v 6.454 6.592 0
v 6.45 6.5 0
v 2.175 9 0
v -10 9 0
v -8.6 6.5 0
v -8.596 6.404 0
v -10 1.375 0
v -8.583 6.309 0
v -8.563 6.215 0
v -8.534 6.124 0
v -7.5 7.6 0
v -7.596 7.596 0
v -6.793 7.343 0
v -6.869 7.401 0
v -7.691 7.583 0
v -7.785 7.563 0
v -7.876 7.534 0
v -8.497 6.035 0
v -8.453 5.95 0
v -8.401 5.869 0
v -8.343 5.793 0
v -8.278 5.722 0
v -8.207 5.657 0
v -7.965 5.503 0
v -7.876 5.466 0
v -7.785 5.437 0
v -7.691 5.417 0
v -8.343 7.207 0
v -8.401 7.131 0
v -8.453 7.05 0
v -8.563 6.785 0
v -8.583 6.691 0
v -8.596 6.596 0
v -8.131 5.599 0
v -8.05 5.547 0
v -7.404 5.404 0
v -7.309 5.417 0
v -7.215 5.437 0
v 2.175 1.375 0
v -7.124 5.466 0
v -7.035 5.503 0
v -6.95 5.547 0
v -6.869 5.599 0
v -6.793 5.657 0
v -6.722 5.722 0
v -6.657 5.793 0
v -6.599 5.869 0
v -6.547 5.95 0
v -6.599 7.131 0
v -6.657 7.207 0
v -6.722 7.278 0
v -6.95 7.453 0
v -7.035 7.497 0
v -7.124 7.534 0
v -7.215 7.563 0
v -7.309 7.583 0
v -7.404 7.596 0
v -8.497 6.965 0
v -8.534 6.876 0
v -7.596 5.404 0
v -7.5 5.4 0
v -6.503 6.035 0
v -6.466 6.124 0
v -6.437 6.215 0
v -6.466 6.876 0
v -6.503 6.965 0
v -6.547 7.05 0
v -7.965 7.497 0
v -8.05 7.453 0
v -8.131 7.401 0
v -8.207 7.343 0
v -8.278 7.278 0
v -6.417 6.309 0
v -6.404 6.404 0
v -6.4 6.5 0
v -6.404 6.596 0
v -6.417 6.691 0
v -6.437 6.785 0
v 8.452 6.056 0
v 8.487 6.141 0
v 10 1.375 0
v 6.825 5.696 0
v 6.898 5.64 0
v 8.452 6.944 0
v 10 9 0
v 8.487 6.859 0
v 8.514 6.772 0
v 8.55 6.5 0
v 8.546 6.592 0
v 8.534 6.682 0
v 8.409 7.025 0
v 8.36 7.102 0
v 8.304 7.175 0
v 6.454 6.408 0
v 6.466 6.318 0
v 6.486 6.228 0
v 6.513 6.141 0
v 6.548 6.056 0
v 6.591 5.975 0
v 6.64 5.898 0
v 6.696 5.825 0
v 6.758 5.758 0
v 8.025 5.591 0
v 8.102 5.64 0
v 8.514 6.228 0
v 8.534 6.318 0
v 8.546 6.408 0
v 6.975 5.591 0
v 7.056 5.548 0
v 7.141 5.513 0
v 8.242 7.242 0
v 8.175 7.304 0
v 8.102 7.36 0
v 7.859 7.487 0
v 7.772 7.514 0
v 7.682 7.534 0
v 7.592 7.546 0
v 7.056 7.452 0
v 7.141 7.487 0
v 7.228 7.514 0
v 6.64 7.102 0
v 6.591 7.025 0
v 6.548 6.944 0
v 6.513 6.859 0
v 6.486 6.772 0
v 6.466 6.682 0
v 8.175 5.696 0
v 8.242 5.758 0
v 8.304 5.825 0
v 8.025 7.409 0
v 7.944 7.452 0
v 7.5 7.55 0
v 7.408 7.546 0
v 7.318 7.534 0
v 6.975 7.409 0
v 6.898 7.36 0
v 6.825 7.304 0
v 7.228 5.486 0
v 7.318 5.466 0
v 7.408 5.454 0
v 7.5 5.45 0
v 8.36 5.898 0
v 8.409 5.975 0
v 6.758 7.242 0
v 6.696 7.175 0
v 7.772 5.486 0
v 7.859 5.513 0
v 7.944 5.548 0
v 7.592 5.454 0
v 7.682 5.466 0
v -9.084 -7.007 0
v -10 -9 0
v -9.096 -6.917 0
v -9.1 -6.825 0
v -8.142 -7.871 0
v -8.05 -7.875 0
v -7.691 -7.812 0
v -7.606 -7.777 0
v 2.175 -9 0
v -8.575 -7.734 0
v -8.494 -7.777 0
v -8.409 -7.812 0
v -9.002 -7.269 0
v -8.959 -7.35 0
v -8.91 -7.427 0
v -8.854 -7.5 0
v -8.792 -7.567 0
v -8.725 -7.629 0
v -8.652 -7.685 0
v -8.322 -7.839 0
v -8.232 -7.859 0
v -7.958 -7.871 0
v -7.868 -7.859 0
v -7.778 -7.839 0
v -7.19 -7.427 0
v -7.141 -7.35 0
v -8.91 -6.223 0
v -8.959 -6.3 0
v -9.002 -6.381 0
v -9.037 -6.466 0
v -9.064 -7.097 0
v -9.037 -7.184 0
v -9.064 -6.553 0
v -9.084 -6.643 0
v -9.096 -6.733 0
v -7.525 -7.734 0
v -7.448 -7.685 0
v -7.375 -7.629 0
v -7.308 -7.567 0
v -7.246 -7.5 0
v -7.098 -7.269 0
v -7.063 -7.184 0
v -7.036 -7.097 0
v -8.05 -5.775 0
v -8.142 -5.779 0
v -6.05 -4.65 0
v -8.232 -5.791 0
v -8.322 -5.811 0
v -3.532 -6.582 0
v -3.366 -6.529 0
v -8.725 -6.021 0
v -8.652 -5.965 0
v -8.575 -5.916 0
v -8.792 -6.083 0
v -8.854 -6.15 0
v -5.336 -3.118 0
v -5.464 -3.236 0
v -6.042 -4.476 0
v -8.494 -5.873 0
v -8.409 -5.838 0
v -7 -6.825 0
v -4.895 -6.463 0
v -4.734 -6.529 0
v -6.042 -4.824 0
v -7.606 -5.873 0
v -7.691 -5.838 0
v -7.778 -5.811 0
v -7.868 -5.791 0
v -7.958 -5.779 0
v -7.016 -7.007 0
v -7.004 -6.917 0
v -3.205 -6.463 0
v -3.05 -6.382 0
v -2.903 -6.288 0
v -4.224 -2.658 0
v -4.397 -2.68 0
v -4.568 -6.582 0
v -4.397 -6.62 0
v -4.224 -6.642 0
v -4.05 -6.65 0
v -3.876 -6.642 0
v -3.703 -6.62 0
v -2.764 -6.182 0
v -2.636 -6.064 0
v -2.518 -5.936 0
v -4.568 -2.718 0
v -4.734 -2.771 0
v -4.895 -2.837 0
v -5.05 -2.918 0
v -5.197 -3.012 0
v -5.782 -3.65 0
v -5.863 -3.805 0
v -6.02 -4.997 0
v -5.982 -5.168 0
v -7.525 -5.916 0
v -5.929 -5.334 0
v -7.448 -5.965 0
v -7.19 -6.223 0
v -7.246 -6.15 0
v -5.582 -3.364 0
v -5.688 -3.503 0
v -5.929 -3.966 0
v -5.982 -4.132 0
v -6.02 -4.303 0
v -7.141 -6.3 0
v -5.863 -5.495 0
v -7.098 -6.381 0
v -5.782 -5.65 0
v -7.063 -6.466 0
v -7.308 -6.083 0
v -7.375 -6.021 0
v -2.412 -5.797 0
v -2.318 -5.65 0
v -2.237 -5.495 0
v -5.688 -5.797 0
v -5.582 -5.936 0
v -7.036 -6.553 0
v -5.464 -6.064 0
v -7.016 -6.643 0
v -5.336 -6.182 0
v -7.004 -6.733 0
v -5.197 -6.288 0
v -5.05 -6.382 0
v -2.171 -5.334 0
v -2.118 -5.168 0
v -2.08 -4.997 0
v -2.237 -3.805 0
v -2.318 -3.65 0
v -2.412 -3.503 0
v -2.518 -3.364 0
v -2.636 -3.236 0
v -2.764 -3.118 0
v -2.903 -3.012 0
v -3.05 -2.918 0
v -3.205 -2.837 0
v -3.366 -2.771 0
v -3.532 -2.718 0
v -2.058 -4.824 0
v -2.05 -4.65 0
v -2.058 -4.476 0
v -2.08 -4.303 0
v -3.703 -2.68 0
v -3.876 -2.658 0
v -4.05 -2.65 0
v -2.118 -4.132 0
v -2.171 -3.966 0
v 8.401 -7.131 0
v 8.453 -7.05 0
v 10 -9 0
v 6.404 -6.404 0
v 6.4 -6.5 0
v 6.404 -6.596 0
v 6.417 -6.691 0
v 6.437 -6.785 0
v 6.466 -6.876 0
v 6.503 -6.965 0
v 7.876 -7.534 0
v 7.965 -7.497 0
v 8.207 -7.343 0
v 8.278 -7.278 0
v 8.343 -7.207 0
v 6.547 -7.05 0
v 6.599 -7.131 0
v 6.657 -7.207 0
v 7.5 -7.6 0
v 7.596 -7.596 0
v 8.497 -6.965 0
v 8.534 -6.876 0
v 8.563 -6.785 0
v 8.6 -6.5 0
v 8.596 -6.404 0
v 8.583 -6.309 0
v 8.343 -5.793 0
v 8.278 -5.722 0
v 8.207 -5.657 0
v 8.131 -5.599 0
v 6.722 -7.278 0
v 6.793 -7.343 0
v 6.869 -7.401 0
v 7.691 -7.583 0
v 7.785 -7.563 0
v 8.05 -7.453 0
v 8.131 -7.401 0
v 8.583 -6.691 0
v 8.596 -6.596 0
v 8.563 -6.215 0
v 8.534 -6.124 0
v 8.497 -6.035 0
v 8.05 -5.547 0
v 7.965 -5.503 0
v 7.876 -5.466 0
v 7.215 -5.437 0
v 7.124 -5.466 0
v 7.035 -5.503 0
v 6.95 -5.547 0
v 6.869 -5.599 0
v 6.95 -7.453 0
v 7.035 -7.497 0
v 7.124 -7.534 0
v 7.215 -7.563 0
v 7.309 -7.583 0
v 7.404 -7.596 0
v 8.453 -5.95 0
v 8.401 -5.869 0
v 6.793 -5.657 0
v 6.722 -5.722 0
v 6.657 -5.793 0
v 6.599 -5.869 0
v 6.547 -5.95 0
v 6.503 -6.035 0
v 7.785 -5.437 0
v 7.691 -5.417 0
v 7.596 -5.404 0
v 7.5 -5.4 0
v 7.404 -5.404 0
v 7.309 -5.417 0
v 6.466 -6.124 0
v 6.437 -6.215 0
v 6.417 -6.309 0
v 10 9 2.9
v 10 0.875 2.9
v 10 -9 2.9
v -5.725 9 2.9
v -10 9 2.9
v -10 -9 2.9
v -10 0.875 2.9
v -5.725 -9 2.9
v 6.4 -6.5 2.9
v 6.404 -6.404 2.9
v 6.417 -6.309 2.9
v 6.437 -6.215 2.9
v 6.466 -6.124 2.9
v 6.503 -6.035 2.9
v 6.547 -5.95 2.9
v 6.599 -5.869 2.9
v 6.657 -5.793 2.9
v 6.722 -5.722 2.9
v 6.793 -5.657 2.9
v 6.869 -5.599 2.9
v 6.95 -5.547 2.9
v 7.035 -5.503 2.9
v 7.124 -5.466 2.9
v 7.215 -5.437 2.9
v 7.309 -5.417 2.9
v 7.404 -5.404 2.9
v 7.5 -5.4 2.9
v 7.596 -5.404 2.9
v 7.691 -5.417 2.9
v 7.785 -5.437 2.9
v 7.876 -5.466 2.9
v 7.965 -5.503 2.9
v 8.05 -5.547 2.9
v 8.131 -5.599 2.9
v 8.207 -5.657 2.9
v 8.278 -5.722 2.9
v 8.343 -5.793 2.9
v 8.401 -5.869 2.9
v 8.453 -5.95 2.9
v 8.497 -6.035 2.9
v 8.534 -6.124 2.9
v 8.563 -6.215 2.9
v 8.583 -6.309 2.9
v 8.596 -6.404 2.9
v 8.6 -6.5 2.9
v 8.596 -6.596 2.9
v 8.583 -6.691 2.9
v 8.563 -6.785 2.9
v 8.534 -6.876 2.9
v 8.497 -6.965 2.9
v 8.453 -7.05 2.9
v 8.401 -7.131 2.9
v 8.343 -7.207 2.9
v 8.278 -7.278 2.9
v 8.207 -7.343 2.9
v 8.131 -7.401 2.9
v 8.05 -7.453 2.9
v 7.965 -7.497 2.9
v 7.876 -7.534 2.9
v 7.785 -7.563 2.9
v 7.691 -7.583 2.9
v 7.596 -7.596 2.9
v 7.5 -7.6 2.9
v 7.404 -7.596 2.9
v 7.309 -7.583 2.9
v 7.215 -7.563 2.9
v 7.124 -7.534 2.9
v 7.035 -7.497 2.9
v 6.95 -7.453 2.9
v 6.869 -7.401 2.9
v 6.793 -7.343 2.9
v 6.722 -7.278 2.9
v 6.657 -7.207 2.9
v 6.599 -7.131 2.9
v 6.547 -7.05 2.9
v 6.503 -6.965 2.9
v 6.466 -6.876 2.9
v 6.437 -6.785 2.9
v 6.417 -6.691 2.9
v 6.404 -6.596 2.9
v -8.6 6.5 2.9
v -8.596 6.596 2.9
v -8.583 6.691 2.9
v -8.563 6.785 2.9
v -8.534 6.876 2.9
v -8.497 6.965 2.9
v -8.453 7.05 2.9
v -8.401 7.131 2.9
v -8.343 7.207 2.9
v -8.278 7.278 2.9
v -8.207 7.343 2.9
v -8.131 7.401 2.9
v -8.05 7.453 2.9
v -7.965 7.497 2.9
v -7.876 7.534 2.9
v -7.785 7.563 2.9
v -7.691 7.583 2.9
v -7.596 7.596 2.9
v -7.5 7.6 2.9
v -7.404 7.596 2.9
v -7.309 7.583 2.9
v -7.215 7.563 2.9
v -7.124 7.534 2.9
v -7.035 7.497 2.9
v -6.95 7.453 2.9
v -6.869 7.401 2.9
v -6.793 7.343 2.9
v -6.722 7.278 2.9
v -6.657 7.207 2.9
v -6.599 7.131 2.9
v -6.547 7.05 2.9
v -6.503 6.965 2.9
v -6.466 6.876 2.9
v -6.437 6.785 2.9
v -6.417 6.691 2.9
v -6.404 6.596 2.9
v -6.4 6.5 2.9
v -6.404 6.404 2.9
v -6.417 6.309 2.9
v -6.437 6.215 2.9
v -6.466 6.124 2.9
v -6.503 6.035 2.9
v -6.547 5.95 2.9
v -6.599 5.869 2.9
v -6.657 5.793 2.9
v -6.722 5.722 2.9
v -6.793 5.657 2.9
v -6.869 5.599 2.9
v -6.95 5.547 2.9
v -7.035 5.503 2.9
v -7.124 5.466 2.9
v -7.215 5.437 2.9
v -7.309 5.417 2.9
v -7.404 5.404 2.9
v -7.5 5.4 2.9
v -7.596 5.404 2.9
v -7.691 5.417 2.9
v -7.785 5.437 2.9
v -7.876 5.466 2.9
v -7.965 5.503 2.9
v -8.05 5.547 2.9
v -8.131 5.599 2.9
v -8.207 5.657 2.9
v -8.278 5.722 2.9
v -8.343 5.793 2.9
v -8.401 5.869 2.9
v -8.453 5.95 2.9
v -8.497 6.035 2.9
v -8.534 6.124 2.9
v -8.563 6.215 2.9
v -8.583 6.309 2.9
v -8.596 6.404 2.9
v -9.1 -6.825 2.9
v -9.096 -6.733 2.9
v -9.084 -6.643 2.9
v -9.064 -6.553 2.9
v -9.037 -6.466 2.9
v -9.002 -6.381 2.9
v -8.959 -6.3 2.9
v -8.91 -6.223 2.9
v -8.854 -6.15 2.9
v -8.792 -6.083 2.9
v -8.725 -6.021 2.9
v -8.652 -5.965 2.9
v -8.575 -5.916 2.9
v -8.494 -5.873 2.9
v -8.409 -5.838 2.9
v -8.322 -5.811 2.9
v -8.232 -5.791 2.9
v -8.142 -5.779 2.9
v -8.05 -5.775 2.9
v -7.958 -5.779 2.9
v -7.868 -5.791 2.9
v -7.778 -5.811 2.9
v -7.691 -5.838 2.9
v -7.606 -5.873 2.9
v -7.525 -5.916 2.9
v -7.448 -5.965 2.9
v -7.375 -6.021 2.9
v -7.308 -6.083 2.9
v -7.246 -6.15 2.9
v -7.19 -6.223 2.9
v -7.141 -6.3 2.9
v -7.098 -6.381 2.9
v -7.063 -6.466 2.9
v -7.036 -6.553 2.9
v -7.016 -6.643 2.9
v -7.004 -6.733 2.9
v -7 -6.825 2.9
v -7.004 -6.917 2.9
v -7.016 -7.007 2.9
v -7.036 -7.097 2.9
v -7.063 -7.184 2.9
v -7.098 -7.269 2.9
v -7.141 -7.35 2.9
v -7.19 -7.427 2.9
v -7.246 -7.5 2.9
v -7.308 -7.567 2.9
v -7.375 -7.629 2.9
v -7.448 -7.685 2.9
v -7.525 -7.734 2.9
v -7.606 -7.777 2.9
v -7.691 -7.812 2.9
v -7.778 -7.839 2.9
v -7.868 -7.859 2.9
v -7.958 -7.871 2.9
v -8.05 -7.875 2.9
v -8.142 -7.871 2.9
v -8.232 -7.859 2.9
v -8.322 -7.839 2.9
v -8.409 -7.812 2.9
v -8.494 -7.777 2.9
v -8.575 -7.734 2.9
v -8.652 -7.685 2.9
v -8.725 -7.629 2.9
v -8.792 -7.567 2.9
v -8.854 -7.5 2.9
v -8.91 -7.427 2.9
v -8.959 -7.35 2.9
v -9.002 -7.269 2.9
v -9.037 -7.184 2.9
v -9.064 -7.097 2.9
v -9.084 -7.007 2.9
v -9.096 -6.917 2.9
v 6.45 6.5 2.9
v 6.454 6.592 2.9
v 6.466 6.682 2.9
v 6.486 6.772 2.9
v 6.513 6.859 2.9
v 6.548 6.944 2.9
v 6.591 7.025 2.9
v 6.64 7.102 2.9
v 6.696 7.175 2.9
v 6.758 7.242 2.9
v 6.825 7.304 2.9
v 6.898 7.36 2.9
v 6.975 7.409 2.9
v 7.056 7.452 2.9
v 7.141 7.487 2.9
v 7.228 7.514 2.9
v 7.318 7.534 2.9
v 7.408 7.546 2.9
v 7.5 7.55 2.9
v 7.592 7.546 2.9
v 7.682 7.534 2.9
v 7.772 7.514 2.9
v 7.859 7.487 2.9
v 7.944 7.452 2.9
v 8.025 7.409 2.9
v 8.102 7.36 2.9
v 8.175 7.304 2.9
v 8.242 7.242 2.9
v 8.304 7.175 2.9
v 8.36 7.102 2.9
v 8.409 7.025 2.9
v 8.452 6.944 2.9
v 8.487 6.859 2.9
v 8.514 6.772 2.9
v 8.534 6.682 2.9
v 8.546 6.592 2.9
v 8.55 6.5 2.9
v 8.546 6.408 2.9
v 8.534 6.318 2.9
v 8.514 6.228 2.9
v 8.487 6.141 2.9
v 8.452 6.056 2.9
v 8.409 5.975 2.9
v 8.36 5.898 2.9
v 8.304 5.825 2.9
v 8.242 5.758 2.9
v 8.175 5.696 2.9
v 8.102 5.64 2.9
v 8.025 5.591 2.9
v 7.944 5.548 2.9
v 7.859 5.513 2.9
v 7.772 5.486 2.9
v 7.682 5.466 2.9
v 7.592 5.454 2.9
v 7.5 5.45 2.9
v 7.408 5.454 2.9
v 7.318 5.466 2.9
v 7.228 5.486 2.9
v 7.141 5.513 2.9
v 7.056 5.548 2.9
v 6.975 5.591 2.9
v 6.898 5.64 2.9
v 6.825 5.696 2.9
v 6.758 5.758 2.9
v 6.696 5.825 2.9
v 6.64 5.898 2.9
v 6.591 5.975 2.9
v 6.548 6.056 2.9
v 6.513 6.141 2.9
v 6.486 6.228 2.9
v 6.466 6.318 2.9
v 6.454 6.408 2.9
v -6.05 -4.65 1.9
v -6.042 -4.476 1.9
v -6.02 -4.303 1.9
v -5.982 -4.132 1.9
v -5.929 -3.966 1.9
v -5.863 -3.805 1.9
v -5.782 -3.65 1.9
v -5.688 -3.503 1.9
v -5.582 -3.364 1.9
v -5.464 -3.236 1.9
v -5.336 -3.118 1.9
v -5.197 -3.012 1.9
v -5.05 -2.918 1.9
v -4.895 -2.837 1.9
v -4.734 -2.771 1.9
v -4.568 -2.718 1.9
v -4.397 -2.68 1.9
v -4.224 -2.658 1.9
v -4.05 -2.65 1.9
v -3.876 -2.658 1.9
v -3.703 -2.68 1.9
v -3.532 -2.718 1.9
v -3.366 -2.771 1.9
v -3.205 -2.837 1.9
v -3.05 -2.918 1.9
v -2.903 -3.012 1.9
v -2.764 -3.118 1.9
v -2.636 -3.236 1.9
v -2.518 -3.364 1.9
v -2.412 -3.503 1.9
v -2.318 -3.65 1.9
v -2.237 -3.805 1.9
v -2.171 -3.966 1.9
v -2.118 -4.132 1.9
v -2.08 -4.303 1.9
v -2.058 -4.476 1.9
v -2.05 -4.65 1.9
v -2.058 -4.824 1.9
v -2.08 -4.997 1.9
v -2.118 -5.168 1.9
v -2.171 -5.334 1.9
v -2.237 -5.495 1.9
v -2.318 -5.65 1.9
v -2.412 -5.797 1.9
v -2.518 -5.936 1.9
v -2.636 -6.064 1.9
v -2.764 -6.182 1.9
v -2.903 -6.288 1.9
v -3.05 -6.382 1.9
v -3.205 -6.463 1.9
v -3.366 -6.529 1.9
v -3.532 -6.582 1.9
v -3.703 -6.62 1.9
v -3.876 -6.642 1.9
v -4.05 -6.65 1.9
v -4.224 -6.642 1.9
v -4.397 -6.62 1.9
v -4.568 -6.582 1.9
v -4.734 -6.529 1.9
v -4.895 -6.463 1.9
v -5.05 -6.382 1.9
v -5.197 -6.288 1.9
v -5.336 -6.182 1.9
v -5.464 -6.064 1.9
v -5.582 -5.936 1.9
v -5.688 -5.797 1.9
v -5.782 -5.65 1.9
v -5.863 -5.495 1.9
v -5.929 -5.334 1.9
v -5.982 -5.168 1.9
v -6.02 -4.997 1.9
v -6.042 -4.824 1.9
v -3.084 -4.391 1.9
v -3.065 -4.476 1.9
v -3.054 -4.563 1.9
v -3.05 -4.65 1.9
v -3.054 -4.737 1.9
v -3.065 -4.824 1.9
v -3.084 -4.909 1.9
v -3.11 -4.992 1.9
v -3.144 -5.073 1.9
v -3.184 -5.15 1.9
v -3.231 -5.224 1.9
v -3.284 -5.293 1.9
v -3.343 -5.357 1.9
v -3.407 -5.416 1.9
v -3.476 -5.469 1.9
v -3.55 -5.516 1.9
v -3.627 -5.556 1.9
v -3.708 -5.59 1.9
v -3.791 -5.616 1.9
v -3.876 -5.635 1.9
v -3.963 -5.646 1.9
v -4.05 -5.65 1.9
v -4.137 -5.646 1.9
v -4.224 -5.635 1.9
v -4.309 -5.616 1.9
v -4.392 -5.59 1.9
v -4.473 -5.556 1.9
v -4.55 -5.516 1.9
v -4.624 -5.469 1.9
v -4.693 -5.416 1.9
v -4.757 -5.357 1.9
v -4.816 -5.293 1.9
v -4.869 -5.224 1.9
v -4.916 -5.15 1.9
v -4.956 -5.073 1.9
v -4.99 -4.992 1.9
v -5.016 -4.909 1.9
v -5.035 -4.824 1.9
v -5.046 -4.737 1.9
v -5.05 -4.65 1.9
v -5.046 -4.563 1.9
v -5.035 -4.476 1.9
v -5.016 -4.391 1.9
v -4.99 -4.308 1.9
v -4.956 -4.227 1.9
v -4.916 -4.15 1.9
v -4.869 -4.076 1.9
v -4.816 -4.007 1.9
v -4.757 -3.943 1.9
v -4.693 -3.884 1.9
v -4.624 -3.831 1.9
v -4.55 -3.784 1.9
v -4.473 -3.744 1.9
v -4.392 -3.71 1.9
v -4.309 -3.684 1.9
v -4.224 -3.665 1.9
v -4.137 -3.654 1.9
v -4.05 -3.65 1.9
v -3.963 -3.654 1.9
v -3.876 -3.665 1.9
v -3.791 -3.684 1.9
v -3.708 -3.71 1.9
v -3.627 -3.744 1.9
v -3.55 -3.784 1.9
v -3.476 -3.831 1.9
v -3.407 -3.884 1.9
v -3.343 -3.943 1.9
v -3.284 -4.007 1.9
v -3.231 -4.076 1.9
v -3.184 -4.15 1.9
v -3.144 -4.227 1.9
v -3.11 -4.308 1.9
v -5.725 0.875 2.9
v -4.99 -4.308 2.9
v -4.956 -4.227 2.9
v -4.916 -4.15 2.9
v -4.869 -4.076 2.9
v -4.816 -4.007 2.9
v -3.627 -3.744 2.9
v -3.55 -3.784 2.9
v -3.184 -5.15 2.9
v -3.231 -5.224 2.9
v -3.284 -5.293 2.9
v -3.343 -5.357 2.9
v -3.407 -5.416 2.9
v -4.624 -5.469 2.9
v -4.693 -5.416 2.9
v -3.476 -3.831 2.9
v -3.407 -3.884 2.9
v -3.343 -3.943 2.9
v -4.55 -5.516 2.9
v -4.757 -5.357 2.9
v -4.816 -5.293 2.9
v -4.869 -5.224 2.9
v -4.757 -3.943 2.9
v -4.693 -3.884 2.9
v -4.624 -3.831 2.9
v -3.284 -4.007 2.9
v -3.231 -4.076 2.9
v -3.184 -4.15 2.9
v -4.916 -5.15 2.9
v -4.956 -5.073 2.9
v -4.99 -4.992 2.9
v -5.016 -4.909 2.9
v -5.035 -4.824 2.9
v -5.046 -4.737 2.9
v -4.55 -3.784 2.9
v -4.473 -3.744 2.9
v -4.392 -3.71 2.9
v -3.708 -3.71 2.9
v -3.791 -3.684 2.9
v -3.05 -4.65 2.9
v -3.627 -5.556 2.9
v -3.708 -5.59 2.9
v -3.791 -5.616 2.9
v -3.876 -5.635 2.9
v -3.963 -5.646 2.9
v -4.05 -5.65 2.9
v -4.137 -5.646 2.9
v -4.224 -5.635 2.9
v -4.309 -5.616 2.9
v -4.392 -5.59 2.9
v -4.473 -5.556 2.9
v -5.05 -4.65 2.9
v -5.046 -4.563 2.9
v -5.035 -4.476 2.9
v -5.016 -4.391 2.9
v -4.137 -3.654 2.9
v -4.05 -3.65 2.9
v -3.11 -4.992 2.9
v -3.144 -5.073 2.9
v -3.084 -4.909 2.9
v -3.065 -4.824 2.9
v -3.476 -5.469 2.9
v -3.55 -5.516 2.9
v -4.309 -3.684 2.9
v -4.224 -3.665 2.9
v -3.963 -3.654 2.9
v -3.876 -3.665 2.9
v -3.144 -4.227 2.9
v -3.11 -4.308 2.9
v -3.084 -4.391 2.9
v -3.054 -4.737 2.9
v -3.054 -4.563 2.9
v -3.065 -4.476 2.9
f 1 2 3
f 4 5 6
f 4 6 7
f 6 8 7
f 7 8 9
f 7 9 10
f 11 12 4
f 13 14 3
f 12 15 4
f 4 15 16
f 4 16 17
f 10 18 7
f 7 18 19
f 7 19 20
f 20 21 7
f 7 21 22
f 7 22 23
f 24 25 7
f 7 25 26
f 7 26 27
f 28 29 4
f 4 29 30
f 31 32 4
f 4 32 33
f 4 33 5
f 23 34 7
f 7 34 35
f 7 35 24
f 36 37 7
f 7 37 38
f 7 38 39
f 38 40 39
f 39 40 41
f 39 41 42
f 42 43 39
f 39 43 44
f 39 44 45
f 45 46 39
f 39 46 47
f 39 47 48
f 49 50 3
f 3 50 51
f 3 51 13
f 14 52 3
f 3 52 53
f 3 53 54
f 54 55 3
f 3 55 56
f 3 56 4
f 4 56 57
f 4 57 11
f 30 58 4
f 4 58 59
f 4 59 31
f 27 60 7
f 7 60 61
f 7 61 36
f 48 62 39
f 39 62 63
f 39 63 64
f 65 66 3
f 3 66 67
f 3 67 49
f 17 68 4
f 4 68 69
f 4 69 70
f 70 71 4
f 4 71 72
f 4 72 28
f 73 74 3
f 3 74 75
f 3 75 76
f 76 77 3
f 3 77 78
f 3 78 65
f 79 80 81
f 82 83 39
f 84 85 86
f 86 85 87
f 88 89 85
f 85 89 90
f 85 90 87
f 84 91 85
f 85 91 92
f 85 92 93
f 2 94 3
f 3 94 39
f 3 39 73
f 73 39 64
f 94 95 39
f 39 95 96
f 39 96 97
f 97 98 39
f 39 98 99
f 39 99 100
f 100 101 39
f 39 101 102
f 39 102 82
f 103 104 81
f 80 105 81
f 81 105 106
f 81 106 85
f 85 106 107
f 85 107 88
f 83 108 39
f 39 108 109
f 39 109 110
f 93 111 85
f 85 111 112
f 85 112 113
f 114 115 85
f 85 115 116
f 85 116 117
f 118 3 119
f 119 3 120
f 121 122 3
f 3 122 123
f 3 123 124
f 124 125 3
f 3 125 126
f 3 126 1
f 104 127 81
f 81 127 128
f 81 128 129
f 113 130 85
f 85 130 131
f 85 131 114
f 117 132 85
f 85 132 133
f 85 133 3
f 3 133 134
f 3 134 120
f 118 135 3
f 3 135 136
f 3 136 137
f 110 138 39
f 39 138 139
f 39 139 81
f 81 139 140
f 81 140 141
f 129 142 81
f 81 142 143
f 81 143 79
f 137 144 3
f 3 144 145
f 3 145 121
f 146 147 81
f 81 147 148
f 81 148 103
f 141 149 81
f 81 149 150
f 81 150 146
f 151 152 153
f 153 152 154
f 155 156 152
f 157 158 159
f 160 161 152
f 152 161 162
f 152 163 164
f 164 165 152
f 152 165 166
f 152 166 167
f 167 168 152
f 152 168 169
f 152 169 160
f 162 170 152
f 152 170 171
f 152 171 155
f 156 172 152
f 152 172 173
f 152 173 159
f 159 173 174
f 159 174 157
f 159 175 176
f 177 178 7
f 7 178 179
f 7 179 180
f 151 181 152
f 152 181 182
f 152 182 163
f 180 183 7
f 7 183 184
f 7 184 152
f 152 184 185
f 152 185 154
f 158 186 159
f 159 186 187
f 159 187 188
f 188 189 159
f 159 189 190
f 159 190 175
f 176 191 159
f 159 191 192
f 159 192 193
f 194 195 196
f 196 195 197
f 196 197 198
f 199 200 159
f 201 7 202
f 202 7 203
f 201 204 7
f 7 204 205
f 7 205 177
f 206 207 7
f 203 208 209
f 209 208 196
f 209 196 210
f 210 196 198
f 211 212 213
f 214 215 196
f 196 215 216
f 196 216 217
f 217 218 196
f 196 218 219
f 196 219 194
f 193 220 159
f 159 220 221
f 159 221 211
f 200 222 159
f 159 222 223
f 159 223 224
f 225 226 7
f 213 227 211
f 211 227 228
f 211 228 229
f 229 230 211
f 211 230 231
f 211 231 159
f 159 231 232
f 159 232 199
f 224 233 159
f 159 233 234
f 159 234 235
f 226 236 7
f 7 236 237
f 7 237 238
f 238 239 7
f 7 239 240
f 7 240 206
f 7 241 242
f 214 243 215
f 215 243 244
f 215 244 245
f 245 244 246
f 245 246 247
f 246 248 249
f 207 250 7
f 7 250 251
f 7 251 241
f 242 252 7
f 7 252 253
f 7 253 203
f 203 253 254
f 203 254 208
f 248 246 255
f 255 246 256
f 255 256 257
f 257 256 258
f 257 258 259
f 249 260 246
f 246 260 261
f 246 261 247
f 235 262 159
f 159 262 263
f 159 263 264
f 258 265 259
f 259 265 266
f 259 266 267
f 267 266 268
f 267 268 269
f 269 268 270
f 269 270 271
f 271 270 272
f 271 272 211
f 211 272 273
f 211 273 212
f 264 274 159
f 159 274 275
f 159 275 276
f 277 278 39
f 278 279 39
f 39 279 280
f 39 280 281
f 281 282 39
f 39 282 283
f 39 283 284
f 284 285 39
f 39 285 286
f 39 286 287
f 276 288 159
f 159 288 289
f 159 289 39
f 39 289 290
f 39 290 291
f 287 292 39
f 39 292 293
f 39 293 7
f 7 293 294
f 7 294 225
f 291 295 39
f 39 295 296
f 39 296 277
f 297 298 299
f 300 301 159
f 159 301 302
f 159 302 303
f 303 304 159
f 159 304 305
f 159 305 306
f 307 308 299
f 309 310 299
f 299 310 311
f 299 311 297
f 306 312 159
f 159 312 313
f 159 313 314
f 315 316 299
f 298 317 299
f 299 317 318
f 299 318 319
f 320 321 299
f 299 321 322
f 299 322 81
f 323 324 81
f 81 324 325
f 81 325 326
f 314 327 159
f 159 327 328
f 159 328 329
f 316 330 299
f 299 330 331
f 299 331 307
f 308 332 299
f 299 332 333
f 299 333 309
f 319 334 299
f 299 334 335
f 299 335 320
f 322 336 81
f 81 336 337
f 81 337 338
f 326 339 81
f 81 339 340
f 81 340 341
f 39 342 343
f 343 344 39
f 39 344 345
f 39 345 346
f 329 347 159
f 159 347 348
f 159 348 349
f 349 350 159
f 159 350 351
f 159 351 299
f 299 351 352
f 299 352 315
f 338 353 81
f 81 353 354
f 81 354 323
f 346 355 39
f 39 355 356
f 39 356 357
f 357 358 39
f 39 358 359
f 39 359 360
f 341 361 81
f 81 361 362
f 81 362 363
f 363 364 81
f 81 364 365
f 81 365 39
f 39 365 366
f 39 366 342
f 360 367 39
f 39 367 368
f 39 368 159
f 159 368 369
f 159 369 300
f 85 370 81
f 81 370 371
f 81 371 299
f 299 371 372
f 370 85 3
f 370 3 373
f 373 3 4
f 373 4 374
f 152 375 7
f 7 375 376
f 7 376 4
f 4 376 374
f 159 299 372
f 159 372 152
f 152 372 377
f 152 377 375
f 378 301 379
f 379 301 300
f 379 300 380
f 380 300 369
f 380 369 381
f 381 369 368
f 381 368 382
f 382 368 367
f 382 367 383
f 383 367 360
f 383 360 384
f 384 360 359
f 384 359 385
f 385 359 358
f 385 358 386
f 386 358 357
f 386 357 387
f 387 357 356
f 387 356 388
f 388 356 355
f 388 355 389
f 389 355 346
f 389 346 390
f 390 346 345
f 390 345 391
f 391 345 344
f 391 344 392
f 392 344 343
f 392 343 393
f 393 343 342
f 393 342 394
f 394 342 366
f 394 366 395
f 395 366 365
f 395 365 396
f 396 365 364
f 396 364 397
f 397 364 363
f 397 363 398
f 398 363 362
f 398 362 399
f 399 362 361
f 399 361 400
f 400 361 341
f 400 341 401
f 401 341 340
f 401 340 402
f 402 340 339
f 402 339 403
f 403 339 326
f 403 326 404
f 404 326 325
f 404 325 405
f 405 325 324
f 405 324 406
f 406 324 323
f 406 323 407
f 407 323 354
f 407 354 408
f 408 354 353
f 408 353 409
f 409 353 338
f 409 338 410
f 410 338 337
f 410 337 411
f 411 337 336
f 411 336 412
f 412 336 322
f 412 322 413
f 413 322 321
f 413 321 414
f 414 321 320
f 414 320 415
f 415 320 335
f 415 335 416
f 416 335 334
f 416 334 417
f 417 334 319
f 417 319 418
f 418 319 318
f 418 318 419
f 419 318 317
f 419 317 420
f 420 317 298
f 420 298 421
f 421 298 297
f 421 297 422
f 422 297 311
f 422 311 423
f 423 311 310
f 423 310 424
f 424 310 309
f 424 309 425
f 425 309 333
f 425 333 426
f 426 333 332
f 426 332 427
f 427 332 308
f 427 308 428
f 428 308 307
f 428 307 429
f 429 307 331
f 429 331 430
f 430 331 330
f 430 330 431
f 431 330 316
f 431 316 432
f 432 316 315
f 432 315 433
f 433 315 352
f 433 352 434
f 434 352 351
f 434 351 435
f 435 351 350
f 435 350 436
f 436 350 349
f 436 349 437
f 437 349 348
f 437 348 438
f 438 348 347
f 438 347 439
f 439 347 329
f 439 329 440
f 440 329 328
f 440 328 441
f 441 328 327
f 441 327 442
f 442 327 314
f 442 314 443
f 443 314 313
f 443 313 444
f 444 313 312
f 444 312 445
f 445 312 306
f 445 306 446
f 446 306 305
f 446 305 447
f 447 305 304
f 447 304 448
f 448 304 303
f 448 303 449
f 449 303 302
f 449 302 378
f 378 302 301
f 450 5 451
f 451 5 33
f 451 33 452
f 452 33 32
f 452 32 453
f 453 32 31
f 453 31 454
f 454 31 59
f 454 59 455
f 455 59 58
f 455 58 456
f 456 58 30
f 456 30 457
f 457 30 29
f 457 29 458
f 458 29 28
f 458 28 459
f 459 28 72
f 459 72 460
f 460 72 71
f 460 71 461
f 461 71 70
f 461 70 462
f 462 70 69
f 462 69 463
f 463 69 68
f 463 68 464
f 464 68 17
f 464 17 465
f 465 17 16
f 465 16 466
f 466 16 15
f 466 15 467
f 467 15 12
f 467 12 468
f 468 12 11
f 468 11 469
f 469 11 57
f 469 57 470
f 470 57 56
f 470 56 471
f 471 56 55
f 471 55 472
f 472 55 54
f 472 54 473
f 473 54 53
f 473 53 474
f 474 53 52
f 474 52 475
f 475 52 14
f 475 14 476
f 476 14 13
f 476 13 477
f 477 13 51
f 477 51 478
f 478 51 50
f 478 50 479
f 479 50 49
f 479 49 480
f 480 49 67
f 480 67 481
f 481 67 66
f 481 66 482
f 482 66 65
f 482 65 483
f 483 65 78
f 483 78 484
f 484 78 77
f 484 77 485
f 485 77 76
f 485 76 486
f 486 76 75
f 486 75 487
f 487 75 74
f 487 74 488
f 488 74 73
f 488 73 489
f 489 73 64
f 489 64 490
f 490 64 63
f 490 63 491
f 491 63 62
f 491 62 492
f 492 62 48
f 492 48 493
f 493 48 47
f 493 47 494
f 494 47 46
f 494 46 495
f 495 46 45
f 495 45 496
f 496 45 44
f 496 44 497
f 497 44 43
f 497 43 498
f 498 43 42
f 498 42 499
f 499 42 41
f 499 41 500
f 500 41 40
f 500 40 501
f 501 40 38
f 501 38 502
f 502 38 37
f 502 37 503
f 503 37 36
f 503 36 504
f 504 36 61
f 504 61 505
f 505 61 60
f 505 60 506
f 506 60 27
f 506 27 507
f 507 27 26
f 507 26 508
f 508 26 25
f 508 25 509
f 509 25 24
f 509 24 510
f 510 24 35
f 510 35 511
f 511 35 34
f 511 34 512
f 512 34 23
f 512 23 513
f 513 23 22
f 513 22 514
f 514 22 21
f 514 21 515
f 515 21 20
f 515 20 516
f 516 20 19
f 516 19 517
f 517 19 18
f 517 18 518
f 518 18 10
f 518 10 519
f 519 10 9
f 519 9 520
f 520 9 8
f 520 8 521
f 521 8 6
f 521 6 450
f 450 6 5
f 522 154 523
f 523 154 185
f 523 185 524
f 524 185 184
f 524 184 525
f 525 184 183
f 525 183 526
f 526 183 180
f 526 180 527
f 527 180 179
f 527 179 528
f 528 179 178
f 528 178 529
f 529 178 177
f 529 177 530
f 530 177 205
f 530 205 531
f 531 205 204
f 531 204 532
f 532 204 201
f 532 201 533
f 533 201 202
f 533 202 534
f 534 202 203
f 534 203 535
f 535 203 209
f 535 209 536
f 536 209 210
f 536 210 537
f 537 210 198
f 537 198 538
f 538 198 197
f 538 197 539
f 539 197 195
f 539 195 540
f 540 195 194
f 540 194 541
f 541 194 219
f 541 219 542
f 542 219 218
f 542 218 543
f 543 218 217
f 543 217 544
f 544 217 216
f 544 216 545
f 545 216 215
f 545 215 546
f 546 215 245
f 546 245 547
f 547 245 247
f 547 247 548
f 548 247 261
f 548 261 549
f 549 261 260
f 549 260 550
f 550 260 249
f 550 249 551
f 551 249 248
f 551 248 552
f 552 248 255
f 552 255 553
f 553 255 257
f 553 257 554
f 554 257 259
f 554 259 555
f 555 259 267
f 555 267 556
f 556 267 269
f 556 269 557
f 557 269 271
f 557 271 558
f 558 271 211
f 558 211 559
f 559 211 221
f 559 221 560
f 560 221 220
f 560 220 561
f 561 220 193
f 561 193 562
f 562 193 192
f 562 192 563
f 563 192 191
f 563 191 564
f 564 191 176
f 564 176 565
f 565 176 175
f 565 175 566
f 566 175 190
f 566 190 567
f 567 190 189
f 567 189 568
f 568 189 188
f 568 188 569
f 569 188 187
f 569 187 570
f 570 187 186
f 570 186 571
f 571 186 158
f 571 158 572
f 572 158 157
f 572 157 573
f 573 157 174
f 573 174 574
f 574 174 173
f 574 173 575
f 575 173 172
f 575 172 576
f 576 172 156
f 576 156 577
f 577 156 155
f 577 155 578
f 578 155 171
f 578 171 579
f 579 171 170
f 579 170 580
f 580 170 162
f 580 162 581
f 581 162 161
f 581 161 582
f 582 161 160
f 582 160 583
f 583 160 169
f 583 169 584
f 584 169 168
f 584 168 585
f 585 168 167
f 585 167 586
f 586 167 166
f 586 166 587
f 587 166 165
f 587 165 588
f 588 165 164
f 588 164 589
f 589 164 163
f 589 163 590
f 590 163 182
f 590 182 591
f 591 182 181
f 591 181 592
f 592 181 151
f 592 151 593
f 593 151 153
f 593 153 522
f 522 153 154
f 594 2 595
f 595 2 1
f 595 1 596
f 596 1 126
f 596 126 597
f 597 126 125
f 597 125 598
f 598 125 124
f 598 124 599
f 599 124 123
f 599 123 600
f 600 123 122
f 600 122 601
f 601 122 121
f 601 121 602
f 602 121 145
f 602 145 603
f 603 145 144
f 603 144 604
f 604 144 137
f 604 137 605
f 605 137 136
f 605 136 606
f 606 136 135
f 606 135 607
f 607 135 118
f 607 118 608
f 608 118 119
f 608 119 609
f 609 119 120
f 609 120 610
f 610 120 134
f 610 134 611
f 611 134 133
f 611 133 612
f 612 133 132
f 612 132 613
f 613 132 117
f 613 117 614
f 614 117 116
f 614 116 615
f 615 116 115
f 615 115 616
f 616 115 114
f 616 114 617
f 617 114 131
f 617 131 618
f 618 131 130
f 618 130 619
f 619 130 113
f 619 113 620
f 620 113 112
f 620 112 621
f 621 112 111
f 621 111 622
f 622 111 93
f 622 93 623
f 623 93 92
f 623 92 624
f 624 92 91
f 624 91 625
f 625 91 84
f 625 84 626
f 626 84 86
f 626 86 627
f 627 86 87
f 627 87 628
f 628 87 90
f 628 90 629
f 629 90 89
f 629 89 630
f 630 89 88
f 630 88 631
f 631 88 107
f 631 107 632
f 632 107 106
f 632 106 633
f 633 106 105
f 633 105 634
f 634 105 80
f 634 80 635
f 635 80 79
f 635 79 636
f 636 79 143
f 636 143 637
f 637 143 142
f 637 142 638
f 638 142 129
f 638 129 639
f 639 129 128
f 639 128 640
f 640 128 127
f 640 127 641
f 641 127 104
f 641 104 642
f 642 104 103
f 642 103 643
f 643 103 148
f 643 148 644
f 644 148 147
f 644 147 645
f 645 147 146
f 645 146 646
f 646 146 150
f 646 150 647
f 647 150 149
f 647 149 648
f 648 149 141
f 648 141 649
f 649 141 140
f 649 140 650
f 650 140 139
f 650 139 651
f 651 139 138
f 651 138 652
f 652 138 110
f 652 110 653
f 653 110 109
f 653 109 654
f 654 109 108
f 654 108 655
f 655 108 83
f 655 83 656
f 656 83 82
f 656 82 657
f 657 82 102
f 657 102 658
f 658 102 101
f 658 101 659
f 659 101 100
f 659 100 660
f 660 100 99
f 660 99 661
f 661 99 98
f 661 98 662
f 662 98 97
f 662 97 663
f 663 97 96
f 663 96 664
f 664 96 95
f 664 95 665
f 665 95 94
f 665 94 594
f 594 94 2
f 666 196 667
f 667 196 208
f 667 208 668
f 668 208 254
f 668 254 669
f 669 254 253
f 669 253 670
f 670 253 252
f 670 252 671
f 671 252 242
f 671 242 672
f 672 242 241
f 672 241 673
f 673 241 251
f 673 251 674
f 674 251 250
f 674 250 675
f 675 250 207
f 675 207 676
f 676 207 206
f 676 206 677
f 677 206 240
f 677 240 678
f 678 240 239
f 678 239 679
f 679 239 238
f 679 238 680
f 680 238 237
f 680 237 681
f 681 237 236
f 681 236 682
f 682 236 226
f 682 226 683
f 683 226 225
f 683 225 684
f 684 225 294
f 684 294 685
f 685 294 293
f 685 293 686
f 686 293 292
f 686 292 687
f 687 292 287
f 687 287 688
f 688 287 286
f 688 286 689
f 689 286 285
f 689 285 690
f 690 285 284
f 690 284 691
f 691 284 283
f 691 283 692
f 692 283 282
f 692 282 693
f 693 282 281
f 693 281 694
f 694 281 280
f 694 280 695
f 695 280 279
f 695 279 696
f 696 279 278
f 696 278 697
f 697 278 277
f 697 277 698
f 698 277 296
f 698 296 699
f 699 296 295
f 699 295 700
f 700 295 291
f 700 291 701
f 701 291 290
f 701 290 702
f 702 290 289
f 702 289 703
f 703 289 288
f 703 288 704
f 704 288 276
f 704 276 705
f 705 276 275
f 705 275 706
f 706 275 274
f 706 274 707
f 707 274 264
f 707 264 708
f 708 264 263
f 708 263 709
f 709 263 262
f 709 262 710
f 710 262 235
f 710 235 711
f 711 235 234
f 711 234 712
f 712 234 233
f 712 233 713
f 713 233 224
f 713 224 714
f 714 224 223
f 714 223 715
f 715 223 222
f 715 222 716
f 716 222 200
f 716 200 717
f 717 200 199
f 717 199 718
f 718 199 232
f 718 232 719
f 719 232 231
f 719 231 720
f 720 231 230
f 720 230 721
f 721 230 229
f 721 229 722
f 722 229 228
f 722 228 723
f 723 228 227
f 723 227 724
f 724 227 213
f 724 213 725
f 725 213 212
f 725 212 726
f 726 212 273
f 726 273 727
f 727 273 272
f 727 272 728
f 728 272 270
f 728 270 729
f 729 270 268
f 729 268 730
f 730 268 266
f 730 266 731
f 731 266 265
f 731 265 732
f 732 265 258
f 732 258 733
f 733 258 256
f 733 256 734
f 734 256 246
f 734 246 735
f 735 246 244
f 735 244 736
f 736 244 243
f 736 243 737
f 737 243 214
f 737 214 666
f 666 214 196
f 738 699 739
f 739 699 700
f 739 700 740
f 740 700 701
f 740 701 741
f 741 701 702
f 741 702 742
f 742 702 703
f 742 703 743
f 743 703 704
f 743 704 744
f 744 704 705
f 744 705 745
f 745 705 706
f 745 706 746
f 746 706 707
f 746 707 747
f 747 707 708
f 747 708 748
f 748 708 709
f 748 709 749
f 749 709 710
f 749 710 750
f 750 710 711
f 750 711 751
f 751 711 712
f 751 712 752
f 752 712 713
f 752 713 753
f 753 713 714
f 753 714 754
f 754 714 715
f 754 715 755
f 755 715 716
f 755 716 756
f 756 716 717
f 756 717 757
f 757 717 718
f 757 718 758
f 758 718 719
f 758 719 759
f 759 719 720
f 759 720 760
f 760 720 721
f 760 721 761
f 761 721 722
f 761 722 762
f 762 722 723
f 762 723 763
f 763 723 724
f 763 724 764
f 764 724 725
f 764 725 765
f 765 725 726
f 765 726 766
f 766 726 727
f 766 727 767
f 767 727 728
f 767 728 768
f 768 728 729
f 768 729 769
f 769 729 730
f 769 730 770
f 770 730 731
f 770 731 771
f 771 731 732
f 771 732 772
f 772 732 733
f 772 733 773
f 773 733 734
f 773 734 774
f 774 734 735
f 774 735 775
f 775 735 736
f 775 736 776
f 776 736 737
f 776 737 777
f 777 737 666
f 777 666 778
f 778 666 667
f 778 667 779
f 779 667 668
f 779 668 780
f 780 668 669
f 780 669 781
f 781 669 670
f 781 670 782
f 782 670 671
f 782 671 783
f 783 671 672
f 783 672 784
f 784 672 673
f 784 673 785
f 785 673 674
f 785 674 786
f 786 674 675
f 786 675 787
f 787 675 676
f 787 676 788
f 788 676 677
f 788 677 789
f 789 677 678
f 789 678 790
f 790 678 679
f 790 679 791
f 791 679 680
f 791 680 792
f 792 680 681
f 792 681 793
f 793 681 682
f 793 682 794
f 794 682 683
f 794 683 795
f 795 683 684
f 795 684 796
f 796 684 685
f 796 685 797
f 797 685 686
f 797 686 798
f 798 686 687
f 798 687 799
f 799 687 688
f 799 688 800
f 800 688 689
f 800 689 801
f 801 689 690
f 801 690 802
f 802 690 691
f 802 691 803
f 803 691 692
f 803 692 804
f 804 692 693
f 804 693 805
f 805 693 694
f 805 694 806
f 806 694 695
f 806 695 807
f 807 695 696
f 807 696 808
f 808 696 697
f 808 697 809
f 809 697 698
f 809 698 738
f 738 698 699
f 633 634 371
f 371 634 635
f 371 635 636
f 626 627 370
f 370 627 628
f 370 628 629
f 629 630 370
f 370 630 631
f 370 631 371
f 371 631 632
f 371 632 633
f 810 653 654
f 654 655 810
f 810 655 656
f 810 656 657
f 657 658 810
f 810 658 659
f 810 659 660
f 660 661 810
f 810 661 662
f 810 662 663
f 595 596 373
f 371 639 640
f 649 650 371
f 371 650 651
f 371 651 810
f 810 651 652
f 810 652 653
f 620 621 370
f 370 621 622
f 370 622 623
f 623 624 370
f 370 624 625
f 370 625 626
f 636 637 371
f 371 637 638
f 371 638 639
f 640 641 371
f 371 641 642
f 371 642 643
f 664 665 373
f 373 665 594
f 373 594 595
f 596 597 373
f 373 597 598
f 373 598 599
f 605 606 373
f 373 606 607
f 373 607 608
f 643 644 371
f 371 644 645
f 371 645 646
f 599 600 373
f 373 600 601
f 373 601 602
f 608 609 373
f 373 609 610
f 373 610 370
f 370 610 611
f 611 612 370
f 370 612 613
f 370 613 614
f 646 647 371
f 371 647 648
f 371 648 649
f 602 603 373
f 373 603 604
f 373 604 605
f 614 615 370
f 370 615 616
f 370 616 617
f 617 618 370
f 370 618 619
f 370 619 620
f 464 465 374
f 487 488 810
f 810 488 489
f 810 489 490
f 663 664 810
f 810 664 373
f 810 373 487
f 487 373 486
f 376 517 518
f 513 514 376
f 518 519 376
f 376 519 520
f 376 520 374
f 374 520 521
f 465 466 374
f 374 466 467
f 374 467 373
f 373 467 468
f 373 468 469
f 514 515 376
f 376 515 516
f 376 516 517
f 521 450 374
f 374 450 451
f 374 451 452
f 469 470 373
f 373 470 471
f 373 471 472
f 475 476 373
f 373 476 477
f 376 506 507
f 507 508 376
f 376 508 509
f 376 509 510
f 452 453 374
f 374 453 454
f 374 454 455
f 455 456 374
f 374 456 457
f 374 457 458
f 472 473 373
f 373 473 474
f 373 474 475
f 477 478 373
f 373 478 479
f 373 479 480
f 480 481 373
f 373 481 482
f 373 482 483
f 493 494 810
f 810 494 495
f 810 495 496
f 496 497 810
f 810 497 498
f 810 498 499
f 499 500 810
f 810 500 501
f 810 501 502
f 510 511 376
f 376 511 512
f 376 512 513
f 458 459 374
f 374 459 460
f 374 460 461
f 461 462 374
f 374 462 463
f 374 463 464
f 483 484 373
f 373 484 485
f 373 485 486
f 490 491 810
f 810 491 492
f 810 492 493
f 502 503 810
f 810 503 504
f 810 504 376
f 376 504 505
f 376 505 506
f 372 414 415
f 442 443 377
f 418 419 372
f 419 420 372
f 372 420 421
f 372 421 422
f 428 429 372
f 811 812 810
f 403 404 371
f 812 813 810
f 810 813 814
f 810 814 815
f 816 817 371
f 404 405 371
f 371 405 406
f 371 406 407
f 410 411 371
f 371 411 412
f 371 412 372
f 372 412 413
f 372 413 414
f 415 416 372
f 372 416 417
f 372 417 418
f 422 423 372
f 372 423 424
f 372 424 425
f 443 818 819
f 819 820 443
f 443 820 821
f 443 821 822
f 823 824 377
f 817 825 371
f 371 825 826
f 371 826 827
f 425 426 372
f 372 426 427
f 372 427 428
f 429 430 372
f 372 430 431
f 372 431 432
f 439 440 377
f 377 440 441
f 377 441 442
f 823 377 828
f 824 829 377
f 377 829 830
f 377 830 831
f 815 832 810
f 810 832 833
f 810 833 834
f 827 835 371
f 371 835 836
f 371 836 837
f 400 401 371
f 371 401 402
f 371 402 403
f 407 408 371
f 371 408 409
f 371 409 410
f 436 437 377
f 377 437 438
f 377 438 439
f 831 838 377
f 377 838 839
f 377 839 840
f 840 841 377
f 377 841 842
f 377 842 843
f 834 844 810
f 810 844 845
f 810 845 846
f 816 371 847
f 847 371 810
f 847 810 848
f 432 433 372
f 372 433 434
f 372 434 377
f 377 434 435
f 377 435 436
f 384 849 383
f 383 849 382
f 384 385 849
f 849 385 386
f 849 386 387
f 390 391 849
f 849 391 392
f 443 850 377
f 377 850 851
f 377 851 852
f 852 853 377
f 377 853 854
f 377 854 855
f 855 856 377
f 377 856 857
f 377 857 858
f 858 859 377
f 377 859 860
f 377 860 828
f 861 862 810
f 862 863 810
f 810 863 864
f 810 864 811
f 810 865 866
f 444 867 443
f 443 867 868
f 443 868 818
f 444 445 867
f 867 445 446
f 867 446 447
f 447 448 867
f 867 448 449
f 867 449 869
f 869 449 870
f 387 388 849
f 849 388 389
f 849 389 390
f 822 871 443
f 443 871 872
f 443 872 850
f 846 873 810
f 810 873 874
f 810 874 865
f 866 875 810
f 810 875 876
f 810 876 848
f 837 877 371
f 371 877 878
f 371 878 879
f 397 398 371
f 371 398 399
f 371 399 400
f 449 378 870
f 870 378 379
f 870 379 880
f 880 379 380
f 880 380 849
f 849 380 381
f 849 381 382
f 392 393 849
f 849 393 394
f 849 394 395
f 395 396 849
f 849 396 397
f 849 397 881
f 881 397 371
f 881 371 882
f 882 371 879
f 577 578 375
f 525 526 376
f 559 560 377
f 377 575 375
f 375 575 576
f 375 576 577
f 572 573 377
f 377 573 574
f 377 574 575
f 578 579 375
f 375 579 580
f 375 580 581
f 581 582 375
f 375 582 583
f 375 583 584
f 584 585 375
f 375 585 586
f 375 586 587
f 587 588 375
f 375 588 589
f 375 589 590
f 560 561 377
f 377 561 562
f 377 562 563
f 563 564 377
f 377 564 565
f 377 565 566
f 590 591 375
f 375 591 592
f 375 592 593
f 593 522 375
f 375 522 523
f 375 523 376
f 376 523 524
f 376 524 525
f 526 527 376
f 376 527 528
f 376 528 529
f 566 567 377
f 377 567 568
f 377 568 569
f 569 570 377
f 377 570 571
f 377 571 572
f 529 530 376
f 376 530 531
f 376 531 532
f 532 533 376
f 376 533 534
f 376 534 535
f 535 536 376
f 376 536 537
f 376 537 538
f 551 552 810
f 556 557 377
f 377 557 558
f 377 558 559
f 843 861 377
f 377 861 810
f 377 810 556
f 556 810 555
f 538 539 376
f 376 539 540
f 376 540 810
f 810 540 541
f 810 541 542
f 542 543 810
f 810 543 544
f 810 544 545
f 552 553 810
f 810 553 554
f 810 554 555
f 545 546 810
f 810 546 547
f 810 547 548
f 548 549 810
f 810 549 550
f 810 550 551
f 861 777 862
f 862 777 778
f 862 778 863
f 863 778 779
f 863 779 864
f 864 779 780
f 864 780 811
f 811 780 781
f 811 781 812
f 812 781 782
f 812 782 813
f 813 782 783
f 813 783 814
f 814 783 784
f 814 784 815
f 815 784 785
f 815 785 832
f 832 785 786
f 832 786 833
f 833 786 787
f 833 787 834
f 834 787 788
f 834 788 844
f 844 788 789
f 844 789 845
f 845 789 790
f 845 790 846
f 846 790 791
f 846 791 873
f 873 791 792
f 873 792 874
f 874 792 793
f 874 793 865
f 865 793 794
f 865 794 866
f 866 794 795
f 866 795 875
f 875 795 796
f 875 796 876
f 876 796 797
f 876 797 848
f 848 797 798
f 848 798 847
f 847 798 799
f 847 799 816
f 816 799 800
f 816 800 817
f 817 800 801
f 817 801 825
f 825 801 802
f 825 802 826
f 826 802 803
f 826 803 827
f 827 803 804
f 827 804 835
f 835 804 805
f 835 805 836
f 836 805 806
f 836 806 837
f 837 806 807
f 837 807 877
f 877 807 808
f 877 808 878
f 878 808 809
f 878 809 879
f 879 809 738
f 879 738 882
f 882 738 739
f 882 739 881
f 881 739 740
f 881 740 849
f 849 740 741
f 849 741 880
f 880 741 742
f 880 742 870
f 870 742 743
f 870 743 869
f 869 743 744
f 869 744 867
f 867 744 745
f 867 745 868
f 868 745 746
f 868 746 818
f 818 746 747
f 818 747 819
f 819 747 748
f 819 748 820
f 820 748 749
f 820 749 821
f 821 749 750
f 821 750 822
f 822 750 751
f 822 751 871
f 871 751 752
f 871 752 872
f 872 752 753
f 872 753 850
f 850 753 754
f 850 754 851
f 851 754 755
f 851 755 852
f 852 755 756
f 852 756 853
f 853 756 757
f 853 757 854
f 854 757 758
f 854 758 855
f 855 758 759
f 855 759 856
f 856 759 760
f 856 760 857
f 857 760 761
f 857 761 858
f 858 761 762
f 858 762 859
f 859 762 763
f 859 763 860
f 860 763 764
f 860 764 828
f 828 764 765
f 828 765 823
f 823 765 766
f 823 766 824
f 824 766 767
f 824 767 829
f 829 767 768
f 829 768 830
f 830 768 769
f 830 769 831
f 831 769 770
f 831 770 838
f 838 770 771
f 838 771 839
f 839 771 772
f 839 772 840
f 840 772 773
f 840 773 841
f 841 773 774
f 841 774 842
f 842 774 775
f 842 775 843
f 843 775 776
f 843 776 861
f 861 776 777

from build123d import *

# Parameters (mm, degrees)
SKETCH1_R           = 1.1
SKETCH1_R_2         = 1.05
SKETCH1_R_3         = 2
BOSS_EXTRUDE1_DEPTH = 1.9
SKETCH2_W           = 20
SKETCH2_H           = 18
SKETCH2_R           = 1.1
SKETCH2_R_2         = 1.05
SKETCH2_R_3         = 1
BOSS_EXTRUDE2_DEPTH = 1


with BuildPart() as part:
    # Sketch1 → Boss-Extrude1 (new body)
    with BuildSketch(Plane.XY):
        Polygon((-10, 9), (10, 9), (10, -9), (-10, -9), (-10, -1.1), (-10, 4), align=None)
        with Locations(Location((7.5, -6.5, 0), (0, 0, 180))):
            Circle(SKETCH1_R, mode=Mode.SUBTRACT)
        with Locations(Location((-7.5, 6.5, 0), (0, 0, 180))):
            Circle(SKETCH1_R, mode=Mode.SUBTRACT)
        with Locations(Location((-8.05, -6.825, 0), (0, 0, 180))):
            Circle(SKETCH1_R_2, mode=Mode.SUBTRACT)
        with Locations(Location((7.5, 6.5, 0), (0, 0, 180))):
            Circle(SKETCH1_R_2, mode=Mode.SUBTRACT)
        with Locations(Location((-4.05, -4.65, 0), (0, 0, 180))):
            Circle(SKETCH1_R_3, mode=Mode.SUBTRACT)
    extrude(amount=BOSS_EXTRUDE1_DEPTH)

    # Sketch2 → Boss-Extrude2 (add)
    with BuildSketch(Plane.XY.offset(1.9)):
        Rectangle(SKETCH2_W, SKETCH2_H)
        with Locations(Location((-7.5, 6.5, 0), (0, 0, 180))):
            Circle(SKETCH2_R, mode=Mode.SUBTRACT)
        with Locations(Location((7.5, 6.5, 0), (0, 0, 180))):
            Circle(SKETCH2_R_2, mode=Mode.SUBTRACT)
        with Locations(Location((7.5, -6.5, 0), (0, 0, 180))):
            Circle(SKETCH2_R, mode=Mode.SUBTRACT)
        with Locations(Location((-8.05, -6.825, 0), (0, 0, 180))):
            Circle(SKETCH2_R_2, mode=Mode.SUBTRACT)
        with Locations((-4.05, -4.65)):
            Circle(SKETCH2_R_3, mode=Mode.SUBTRACT)
    extrude(amount=BOSS_EXTRUDE2_DEPTH)


solid = part.part
